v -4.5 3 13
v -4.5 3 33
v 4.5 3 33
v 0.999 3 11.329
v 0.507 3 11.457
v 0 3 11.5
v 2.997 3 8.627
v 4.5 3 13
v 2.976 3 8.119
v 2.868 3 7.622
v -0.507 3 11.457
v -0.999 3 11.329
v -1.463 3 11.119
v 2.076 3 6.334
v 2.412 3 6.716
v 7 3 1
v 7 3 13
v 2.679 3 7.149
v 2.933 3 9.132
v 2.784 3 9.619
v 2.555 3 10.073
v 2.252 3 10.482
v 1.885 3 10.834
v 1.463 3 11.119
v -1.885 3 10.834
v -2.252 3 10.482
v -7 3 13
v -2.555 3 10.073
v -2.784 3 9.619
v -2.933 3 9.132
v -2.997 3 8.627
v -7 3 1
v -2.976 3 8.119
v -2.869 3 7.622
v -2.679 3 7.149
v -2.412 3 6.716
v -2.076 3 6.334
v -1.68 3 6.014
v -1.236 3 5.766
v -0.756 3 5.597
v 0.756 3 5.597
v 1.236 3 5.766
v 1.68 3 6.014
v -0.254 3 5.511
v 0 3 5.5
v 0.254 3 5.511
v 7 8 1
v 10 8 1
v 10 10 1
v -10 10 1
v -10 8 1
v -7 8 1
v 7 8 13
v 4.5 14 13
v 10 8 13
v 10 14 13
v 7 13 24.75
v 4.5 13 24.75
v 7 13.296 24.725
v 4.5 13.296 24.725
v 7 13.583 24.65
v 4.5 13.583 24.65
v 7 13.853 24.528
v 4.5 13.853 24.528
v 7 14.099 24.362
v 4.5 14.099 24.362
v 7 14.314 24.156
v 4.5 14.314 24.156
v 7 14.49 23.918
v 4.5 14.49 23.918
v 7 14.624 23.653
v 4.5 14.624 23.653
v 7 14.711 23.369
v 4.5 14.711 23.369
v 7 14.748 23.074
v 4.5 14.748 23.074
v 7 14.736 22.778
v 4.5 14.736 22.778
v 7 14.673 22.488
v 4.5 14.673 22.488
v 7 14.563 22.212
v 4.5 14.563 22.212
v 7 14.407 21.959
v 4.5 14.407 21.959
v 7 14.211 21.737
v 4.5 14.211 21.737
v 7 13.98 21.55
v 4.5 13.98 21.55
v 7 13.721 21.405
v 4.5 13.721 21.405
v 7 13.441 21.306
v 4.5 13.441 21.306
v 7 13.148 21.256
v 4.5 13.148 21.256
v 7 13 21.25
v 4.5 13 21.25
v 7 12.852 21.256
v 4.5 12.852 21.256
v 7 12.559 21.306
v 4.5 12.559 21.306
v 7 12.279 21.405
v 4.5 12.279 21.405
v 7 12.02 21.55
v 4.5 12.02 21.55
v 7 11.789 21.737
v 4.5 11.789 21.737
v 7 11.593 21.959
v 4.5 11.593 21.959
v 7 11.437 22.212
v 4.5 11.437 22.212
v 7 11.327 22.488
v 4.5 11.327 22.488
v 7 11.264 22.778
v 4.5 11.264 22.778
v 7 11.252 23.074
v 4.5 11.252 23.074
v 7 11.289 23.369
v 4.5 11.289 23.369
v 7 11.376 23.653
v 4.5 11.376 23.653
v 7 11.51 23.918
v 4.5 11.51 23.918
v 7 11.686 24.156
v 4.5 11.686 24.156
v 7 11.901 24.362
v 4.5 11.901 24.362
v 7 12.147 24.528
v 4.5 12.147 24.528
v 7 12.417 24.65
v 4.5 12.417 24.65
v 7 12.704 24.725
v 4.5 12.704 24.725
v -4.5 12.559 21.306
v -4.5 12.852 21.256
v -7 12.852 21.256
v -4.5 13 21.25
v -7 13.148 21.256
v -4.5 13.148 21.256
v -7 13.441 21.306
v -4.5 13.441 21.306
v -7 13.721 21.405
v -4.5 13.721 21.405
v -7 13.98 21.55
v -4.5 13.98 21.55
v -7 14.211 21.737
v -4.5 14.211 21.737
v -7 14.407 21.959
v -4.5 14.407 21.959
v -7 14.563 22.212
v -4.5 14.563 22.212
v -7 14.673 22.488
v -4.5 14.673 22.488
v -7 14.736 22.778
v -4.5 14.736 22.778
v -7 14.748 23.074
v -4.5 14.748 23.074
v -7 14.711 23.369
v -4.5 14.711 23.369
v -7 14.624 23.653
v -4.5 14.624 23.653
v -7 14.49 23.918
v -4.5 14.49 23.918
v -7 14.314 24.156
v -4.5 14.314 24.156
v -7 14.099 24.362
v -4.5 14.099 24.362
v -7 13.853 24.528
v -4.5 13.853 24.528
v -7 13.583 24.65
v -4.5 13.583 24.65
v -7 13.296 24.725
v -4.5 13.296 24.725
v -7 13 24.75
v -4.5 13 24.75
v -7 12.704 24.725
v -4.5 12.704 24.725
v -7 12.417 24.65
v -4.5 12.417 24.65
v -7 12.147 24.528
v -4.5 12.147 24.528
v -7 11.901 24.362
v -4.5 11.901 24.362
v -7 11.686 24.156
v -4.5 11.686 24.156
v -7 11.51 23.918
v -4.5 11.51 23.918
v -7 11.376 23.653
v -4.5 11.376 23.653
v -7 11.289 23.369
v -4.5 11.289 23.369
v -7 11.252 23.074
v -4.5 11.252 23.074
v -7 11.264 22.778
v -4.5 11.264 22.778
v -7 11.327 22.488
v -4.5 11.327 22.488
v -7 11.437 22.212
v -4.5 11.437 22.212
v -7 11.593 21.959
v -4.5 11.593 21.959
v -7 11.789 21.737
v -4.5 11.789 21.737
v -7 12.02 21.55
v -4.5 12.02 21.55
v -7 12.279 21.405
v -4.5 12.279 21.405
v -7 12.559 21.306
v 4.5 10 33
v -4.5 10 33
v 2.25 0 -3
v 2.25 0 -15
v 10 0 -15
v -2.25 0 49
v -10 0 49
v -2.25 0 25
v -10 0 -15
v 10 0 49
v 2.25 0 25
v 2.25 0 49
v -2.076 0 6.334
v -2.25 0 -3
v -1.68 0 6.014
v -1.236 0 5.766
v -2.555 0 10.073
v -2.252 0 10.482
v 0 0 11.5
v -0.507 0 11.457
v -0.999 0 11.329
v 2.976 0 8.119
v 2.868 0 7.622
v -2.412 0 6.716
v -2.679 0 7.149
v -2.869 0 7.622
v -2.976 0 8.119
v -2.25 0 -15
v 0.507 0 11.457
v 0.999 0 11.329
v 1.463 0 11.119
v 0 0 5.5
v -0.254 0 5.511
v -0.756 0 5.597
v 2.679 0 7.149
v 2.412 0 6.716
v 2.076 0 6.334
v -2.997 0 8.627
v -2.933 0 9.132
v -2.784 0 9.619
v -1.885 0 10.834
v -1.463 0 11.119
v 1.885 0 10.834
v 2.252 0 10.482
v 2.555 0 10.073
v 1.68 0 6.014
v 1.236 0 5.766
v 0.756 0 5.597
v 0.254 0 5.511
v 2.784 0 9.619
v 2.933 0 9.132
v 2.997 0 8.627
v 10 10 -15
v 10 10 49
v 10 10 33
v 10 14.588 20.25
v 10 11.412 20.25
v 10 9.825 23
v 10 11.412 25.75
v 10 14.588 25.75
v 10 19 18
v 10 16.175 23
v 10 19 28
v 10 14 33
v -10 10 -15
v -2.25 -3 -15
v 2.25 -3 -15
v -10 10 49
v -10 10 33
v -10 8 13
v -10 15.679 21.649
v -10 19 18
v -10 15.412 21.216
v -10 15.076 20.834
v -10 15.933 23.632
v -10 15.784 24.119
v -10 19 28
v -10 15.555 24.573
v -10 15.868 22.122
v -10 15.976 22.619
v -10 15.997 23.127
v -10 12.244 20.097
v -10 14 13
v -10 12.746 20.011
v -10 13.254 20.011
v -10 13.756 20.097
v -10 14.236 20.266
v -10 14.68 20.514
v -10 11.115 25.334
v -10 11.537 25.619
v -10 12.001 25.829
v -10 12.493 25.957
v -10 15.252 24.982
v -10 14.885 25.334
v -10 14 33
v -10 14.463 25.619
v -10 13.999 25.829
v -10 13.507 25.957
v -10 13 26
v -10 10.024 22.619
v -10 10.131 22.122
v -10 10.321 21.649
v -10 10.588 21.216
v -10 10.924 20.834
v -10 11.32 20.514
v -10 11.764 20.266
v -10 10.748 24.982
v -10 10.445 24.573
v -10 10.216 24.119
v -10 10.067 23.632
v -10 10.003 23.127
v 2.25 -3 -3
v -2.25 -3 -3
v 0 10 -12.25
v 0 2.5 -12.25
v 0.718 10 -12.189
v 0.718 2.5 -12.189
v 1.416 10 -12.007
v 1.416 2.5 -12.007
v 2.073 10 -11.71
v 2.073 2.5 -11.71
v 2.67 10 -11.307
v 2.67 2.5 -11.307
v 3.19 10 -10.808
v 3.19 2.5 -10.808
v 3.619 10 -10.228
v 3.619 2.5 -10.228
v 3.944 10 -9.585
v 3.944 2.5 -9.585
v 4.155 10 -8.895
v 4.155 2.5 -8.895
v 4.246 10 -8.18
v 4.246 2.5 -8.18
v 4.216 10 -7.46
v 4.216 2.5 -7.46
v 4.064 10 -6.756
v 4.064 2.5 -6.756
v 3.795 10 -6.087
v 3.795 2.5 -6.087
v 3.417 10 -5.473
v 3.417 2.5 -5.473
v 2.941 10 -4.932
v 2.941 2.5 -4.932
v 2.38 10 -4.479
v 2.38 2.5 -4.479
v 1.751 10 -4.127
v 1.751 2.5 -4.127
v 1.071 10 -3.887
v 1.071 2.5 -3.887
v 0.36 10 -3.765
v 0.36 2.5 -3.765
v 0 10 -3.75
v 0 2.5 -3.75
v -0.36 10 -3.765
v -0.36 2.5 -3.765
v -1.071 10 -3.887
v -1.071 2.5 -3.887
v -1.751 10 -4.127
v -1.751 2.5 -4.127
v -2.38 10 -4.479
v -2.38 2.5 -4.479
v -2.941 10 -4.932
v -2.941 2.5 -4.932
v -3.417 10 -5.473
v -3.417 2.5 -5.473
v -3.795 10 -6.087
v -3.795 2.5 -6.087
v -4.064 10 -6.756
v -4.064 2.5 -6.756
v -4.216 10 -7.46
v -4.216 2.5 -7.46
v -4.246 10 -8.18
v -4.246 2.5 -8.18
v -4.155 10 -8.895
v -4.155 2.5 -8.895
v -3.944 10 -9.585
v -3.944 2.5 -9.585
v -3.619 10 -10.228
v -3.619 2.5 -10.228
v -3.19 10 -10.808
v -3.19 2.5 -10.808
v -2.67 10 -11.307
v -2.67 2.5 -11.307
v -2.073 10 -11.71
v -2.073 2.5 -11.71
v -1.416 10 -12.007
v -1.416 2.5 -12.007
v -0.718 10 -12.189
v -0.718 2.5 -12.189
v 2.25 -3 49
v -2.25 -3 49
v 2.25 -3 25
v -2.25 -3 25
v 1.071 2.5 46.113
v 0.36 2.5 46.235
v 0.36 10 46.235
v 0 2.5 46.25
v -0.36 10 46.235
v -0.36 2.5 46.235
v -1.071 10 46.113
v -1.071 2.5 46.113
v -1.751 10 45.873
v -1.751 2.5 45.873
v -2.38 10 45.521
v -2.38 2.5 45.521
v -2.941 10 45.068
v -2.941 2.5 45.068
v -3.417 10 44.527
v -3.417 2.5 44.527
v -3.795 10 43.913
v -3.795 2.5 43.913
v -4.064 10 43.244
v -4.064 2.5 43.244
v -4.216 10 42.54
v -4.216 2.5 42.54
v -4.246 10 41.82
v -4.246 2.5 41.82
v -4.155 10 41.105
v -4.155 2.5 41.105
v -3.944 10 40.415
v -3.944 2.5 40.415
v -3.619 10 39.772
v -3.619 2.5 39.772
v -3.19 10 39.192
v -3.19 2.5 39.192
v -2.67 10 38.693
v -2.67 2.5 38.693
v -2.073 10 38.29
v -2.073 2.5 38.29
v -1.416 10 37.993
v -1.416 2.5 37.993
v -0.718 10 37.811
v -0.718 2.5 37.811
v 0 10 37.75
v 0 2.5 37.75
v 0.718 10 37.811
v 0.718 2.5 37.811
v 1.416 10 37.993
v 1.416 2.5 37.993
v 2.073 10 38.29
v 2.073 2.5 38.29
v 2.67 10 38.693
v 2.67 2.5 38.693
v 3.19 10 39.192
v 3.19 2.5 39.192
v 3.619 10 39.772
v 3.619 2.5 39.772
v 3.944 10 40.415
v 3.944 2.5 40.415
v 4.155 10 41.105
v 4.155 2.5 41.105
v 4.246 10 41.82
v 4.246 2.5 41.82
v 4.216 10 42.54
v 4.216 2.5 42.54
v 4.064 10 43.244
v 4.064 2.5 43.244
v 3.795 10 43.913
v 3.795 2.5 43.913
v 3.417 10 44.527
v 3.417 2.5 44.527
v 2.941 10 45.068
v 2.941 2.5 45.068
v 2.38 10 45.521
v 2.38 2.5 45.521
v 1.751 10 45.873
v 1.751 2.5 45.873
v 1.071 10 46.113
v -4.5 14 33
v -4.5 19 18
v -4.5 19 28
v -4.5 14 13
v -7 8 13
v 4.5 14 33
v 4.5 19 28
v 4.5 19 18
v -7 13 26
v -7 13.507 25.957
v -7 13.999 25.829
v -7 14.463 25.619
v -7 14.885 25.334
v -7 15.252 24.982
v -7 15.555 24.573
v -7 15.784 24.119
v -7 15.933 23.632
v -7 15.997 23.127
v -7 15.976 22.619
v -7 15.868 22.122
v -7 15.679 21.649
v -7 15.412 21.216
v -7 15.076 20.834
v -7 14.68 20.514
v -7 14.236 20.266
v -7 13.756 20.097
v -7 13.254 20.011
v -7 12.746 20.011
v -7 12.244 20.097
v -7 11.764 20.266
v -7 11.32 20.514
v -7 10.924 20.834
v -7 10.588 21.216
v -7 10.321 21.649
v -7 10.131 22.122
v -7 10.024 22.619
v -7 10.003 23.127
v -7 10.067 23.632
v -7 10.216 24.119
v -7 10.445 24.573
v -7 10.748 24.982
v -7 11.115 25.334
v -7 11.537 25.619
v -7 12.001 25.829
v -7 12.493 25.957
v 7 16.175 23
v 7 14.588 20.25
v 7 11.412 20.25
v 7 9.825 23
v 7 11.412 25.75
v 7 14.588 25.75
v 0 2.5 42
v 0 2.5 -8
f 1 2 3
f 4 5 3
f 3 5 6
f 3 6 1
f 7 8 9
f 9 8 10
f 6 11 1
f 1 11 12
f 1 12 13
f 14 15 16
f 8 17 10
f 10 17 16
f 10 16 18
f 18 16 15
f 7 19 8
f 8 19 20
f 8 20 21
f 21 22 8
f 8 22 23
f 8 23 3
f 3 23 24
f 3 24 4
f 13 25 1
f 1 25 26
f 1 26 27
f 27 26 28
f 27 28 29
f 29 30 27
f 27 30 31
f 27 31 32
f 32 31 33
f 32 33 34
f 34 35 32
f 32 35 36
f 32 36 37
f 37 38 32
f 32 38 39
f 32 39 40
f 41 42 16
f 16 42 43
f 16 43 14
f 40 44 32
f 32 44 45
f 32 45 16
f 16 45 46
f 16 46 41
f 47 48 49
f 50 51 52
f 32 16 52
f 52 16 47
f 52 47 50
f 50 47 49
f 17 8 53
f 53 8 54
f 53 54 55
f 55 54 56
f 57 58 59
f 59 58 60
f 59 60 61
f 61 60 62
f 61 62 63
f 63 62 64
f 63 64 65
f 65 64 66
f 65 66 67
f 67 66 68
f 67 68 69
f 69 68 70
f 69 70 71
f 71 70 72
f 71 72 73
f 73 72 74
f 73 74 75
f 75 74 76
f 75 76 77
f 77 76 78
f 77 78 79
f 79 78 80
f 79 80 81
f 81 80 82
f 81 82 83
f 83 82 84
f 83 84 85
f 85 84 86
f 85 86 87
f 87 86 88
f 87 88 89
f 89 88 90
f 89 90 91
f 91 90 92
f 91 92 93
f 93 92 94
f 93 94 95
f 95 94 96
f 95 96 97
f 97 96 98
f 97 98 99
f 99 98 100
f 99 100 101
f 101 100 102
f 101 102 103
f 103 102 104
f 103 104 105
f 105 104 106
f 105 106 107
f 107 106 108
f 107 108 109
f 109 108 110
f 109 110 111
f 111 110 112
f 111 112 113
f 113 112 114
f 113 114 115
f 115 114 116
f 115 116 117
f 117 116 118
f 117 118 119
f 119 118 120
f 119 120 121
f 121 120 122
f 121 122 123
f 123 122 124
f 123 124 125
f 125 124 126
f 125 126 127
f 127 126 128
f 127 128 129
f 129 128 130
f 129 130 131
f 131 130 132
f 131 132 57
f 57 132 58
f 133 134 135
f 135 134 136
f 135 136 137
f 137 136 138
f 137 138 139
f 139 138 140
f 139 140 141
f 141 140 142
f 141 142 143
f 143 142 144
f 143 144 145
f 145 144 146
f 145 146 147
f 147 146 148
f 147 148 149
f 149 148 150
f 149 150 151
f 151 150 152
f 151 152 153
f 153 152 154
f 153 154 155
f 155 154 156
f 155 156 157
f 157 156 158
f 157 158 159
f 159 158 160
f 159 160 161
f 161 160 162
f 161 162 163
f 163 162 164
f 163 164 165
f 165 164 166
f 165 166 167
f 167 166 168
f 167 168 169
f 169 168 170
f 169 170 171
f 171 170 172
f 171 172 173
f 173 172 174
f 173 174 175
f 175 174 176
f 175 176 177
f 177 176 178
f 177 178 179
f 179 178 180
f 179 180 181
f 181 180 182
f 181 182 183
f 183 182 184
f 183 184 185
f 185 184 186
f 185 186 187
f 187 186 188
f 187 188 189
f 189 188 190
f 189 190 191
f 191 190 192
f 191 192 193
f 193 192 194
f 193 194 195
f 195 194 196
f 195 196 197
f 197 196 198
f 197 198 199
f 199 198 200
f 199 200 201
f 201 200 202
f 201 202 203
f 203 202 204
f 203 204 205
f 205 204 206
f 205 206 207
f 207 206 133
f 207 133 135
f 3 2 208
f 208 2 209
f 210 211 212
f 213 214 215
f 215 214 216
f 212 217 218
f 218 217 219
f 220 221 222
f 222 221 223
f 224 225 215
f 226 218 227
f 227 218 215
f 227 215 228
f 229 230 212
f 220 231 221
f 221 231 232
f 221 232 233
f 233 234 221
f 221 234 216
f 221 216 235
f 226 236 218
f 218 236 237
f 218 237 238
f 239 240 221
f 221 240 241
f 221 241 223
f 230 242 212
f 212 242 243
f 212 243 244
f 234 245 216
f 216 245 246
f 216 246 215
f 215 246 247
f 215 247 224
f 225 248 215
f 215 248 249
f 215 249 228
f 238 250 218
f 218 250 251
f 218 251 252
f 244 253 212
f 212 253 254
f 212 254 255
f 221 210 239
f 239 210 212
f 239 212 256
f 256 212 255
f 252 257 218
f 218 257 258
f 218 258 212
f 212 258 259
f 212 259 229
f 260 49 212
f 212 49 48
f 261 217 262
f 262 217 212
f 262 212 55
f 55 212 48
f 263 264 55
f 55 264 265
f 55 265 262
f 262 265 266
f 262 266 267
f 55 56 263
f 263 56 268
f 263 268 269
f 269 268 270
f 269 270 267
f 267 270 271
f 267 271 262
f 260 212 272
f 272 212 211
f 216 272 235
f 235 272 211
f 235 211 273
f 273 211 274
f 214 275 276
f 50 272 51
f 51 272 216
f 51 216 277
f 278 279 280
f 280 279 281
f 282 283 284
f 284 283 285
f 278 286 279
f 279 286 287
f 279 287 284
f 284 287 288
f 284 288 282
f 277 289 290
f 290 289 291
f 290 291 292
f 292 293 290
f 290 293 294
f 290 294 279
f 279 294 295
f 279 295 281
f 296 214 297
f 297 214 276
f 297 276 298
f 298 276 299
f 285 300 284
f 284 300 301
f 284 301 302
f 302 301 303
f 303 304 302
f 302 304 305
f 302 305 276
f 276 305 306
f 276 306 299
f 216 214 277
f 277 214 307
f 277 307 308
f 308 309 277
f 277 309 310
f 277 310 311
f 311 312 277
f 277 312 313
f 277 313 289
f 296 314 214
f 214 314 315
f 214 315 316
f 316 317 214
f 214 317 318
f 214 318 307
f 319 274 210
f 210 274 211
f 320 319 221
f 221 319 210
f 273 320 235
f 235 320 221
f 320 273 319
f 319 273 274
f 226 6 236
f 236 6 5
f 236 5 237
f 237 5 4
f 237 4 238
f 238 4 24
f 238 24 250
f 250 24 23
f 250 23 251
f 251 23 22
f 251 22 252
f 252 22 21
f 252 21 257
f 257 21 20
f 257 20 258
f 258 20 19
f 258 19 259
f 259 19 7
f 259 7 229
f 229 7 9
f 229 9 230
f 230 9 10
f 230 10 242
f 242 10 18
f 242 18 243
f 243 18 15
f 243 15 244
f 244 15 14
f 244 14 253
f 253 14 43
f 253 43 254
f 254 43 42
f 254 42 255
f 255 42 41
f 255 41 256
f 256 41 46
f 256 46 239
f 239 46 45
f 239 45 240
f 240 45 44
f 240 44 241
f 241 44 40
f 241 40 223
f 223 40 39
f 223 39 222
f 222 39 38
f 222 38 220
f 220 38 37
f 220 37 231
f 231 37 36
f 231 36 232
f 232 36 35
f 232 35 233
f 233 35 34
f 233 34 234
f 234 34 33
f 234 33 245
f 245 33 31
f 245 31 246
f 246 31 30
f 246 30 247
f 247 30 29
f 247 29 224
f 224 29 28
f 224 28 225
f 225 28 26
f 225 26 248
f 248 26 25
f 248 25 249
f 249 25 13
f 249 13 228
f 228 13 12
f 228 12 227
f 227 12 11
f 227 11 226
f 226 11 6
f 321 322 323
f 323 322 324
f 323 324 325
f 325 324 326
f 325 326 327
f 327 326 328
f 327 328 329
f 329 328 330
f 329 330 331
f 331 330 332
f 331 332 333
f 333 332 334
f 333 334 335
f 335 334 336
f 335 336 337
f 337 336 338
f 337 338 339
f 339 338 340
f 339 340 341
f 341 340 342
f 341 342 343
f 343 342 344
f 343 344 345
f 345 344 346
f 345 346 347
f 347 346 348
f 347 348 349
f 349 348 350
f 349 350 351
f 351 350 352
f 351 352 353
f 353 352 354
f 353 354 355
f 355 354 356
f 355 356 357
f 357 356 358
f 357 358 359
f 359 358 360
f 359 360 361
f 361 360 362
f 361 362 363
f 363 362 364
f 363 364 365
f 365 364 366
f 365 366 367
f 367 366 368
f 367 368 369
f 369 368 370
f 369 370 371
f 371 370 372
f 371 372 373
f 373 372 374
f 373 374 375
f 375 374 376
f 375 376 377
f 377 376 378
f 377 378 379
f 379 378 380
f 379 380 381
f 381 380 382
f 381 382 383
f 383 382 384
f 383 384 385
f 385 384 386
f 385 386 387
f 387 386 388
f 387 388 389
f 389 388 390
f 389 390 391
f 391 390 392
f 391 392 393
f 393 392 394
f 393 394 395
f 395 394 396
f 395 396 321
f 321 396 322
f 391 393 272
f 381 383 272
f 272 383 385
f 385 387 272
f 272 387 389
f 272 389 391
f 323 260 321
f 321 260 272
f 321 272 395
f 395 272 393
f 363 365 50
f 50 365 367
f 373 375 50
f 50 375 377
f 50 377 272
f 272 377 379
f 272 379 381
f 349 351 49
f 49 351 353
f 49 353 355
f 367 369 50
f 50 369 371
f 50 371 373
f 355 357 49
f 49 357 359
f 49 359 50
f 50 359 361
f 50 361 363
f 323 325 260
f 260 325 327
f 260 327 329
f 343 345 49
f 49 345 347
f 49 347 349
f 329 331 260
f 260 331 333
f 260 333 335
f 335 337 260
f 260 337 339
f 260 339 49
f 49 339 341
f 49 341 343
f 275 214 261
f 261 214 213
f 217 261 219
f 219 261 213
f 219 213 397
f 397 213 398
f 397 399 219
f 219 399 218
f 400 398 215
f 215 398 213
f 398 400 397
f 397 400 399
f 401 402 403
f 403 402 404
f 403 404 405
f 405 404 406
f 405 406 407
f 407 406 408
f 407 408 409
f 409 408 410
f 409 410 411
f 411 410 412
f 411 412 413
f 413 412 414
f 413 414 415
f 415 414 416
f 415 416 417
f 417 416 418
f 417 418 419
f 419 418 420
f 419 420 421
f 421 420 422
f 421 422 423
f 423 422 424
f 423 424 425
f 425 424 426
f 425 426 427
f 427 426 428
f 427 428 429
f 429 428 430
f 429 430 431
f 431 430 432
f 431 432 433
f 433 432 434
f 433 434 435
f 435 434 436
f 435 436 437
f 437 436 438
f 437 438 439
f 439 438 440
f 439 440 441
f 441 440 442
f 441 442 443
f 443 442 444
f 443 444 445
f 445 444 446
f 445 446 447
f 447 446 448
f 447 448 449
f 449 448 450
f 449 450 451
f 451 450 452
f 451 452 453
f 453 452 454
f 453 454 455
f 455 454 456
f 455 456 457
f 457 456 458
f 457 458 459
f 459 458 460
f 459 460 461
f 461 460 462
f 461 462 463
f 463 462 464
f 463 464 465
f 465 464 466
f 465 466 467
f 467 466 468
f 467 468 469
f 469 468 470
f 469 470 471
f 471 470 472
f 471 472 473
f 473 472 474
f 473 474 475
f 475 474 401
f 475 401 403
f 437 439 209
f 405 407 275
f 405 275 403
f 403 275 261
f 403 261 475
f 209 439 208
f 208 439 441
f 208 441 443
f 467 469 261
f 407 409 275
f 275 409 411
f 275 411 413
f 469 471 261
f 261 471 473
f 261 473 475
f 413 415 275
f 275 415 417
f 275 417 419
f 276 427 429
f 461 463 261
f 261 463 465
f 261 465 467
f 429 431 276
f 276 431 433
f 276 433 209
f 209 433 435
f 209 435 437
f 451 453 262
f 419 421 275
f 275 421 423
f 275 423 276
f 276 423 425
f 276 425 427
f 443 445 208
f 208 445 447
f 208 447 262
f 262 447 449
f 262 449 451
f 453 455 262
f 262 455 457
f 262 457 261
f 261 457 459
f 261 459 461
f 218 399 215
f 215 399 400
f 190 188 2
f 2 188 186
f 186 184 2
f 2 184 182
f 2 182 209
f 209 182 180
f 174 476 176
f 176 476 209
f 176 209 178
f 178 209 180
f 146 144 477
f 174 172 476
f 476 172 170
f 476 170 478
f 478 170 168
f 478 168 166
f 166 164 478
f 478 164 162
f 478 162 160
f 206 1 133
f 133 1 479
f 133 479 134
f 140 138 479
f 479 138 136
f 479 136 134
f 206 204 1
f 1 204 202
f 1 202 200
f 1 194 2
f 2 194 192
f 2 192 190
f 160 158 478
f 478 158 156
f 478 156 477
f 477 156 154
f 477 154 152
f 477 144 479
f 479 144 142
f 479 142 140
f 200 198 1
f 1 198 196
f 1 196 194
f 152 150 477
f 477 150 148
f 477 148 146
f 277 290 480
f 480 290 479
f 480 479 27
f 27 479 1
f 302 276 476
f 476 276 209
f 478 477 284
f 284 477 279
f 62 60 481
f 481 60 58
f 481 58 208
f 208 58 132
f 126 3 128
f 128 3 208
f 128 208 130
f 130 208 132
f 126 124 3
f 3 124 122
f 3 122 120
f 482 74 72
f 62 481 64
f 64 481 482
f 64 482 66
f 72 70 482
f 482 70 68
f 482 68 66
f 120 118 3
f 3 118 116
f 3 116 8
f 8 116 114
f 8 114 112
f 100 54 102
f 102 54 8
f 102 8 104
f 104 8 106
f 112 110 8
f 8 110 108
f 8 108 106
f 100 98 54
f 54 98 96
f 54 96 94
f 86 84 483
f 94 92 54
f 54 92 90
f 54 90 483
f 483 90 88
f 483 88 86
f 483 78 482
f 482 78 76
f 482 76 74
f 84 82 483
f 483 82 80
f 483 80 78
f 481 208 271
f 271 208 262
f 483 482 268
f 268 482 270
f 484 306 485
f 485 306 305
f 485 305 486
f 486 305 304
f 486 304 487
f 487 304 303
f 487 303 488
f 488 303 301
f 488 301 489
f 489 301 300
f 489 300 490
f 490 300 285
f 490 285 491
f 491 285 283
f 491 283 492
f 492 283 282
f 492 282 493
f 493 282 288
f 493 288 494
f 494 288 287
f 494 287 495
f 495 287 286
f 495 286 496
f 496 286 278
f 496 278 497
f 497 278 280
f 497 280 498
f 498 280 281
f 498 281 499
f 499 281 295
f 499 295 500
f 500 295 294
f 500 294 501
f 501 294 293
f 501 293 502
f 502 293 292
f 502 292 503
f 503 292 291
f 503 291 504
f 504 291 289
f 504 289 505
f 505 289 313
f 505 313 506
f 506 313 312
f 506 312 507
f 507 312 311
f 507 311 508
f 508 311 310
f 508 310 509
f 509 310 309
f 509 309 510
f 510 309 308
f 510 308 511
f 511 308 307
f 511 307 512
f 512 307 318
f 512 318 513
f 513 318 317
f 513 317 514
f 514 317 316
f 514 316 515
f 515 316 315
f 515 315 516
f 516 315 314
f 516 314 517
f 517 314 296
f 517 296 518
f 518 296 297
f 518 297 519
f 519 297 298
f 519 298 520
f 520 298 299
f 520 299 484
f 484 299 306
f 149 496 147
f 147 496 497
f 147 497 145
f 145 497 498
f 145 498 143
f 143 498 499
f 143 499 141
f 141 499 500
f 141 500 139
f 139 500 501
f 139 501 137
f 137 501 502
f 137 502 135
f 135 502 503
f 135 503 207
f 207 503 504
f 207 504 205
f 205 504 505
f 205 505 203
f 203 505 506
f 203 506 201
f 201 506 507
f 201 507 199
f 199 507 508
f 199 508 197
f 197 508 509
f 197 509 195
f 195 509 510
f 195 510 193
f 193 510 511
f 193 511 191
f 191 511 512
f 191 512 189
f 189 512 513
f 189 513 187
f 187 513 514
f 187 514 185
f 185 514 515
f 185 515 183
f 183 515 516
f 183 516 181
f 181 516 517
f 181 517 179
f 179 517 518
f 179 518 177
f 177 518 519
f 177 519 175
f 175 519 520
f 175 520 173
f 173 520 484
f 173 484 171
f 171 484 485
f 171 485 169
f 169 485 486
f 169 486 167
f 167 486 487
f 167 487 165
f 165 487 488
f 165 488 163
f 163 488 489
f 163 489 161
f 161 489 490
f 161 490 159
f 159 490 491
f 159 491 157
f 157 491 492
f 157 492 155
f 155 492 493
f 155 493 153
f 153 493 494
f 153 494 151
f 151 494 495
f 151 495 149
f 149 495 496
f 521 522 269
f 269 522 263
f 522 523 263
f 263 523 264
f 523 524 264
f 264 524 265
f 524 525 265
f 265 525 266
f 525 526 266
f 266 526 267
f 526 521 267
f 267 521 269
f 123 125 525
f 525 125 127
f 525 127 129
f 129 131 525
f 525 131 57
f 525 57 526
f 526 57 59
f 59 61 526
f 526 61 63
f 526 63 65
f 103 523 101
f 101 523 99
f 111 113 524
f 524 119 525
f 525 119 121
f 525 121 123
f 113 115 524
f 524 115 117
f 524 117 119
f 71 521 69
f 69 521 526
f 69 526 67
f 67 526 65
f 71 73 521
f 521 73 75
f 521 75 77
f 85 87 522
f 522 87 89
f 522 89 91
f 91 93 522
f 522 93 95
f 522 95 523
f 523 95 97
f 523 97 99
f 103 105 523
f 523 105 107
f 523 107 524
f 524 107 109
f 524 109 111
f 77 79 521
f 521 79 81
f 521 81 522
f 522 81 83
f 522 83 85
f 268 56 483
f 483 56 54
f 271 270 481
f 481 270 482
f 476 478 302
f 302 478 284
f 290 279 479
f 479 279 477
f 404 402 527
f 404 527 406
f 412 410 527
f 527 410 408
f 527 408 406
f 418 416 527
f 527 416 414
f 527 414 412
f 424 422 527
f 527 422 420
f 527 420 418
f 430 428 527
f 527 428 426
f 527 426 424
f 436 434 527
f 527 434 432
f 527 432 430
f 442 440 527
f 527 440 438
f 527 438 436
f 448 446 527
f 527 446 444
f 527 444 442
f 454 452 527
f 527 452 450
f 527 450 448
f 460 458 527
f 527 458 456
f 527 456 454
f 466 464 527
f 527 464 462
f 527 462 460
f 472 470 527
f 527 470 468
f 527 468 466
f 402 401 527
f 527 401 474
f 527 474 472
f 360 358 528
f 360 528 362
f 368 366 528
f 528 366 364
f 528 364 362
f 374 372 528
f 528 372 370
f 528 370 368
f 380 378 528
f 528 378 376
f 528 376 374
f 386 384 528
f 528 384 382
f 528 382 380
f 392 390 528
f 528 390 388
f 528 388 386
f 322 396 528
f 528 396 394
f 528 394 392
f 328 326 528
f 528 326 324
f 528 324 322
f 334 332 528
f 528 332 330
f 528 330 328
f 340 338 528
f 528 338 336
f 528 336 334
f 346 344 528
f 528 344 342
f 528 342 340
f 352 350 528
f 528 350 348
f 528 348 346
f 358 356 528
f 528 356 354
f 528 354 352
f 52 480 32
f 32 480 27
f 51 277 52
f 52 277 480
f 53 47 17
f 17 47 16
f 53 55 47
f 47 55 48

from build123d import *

# Parameters (mm, degrees)
SKETCH1_W               = 20
SKETCH1_H               = 30
BOSS_EXTRUDE1_DEPTH     = 3
SKETCH2_W               = 4.5
SKETCH2_H               = 12
BOSS_EXTRUDE2_DEPTH     = 3
SKETCH3_R               = 7
SKETCH3_R_2             = 4.25
BOSS_EXTRUDE3_DEPTH     = 7
SKETCH4_R               = 4.25
BOSS_EXTRUDE4_DEPTH     = 1
CUT_EXTRUDE1_DEPTH      = 20.339079606
CUT_EXTRUDE1_DEPTH_BACK = 20.339079606
SKETCH5_R               = 3
SKETCH6_R               = 7
SKETCH6_R_2             = 4.25
BOSS_EXTRUDE6_DEPTH     = 7
SKETCH7_W               = 20
SKETCH7_H               = 3
BOSS_EXTRUDE7_DEPTH     = 19
SKETCH8_W               = 4.5
SKETCH8_H               = 3
BOSS_EXTRUDE8_DEPTH     = 12
SKETCH10_W              = 5.5
SKETCH10_H              = 20
BOSS_EXTRUDE9_DEPTH     = 16
CUT_EXTRUDE2_DEPTH      = 57.231663678
CUT_EXTRUDE2_DEPTH_BACK = 57.231663678
SKETCH11_R              = 1.75
SKETCH12_R              = 3
SKETCH12_R_2            = 1.75
CUT_EXTRUDE3_DEPTH      = 3
CUT_EXTRUDE4_START      = -3
SKETCH13_R              = 1.75
CUT_EXTRUDE4_DEPTH      = 3
CHAMFER2_SIZE           = 5
CUT_EXTRUDE5_START      = -1.5
SKETCH14_R              = 4.25
CUT_EXTRUDE5_DEPTH      = 1.5
SKETCH15_W              = 3
SKETCH15_H              = 12
BOSS_EXTRUDE10_DEPTH    = 5


with BuildPart() as part:
    # Sketch1 → Boss-Extrude1 (new body)
    with BuildSketch(Plane(origin=(0, 0, 0), x_dir=(1, 0, 0), z_dir=(0, 1, 0))):
        Rectangle(SKETCH1_W, SKETCH1_H)
    boss_extrude1 = extrude(amount=BOSS_EXTRUDE1_DEPTH)

    # Sketch2 → Boss-Extrude2 (add)
    with BuildSketch(Plane.XZ):
        with Locations((0, -9)):
            Rectangle(SKETCH2_W, SKETCH2_H)
    boss_extrude2 = extrude(amount=BOSS_EXTRUDE2_DEPTH)

    # Sketch3 → Boss-Extrude3 (add)
    with BuildSketch(Plane(origin=(0, 3, 0), x_dir=(1, 0, 0), z_dir=(0, 1, 0))):
        with Locations(Location((0, 8, 0), (0, 0, 90))):
            Circle(SKETCH3_R)
        with Locations(Location((0, 8, 0), (0, 0, 270))):
            Circle(SKETCH3_R_2, mode=Mode.SUBTRACT)
    boss_extrude3 = extrude(amount=BOSS_EXTRUDE3_DEPTH)

    # Sketch4 → Boss-Extrude4 (add)
    with BuildSketch(Plane(origin=(0, 3, 0), x_dir=(1, 0, 0), z_dir=(0, 1, 0))):
        with Locations(Location((0, 8, 0), (0, 0, 270))):
            Circle(SKETCH4_R)
    boss_extrude4 = extrude(amount=BOSS_EXTRUDE4_DEPTH)

    # Sketch5 → Cut-Extrude1 (cut, two sides: drawn at the far end of the back side and taken through both)
    with BuildSketch(Plane(origin=(0, 3, 0), x_dir=(1, 0, 0), z_dir=(0, 1, 0)).offset(-CUT_EXTRUDE1_DEPTH_BACK)):
        with Locations(Location((0, -8.5, 0), (0, 0, 90))):
            Circle(SKETCH5_R)
    extrude(amount=CUT_EXTRUDE1_DEPTH + CUT_EXTRUDE1_DEPTH_BACK, mode=Mode.SUBTRACT)

    # Sketch6 → Boss-Extrude6 (add)
    # profile 1 of 2: a face of its own
    with BuildSketch(Plane(origin=(0, 3, 0), x_dir=(1, 0, 0), z_dir=(0, 1, 0))):
        Polygon((0, 15), (-10, 15), (-10, -1), (10, -1), (10, 15), align=None)
        with BuildLine():
            ThreePointArc((7, 8), (-4.949747468, 3.050252532), (0, 15))
            ThreePointArc((0, 15), (4.949747468, 12.949747468), (7, 8))
        make_face(mode=Mode.SUBTRACT)
    # profile 2 of 2: a face of its own
    with BuildSketch(Plane(origin=(0, 3, 0), x_dir=(1, 0, 0), z_dir=(0, 1, 0))):
        with Locations((0, 8)):
            Circle(SKETCH6_R)
        with Locations(Location((0, 8, 0), (0, 0, 270))):
            Circle(SKETCH6_R_2, mode=Mode.SUBTRACT)
    boss_extrude6 = extrude(amount=BOSS_EXTRUDE6_DEPTH)

    # Sketch7 → Boss-Extrude7 (add)
    with BuildSketch(Plane.XY.offset(15)):
        with Locations((0, 1.5)):
            Rectangle(SKETCH7_W, SKETCH7_H)
    extrude(amount=BOSS_EXTRUDE7_DEPTH)

    # Mirror3: Boss-Extrude1, Boss-Extrude2, Boss-Extrude3, Boss-Extrude4, Boss-Extrude6 across plane
    add(boss_extrude1.mirror(Plane.XY.offset(17)))
    add(boss_extrude2.mirror(Plane.XY.offset(17)))
    add(boss_extrude3.mirror(Plane.XY.offset(17)))
    add(boss_extrude4.mirror(Plane.XY.offset(17)))
    add(boss_extrude6.mirror(Plane.XY.offset(17)))

    # Sketch8 → Boss-Extrude8 (add)
    with BuildSketch(Plane(origin=(0, 0, 37), x_dir=(-1, 0, 0), z_dir=(0, 0, -1))):
        with Locations((0, -1.5)):
            Rectangle(SKETCH8_W, SKETCH8_H)
    extrude(amount=BOSS_EXTRUDE8_DEPTH)

    # Sketch10 → Boss-Extrude9 (add)
    with BuildSketch(Plane(origin=(0, 3, 0), x_dir=(1, 0, 0), z_dir=(0, 1, 0))):
        with Locations((-7.25, -23)):
            Rectangle(SKETCH10_W, SKETCH10_H)
        with Locations((7.25, -23)):
            Rectangle(SKETCH10_W, SKETCH10_H)
    extrude(amount=BOSS_EXTRUDE9_DEPTH)

    # Sketch11 → Cut-Extrude2 (cut, two sides: drawn at the far end of the back side and taken through both)
    with BuildSketch(Plane.ZY.offset(10).offset(-CUT_EXTRUDE2_DEPTH_BACK)):
        with Locations((23, 13)):
            Circle(SKETCH11_R)
    extrude(amount=CUT_EXTRUDE2_DEPTH + CUT_EXTRUDE2_DEPTH_BACK, mode=Mode.SUBTRACT)

    # Sketch12 → Cut-Extrude3 (cut)
    with BuildSketch(Plane.ZY.offset(10)):
        with Locations((23, 13)):
            Circle(SKETCH12_R)
        with Locations((23, 13)):
            Circle(SKETCH12_R_2, mode=Mode.SUBTRACT)
    extrude(amount=-CUT_EXTRUDE3_DEPTH, mode=Mode.SUBTRACT)

    # Sketch13 → Cut-Extrude4 (cut)
    with BuildSketch(Plane(origin=(10, 0, 0), x_dir=(0, 0, -1), z_dir=(1, 0, 0)).offset(CUT_EXTRUDE4_START)):
        Polygon((-23, 16.175426481), (-25.75, 14.58771324), (-25.75, 11.41228676), (-23, 9.824573519), (-20.25, 11.41228676), (-20.25, 14.58771324), align=None)
        with Locations((-23, 13)):
            Circle(SKETCH13_R, mode=Mode.SUBTRACT)
    extrude(amount=CUT_EXTRUDE4_DEPTH, mode=Mode.SUBTRACT)

    # Chamfer2
    chamfer2_edges = [part.edges().sort_by_distance(p)[0] for p in [
        (-7.25, 19, 13),
        (-7.25, 19, 33),
        (7.25, 19, 13),
        (7.25, 19, 33),
    ]]
    chamfer(chamfer2_edges, length=CHAMFER2_SIZE)

    # Sketch14 → Cut-Extrude5 (cut)
    with BuildSketch(Plane(origin=(0, 4, 0), x_dir=(1, 0, 0), z_dir=(0, 1, 0)).offset(CUT_EXTRUDE5_START)):
        with Locations(Location((0, -42, 0), (0, 0, 90))):
            Circle(SKETCH14_R)
        with Locations(Location((0, 8, 0), (0, 0, 270))):
            Circle(SKETCH14_R)
    extrude(amount=CUT_EXTRUDE5_DEPTH, mode=Mode.SUBTRACT)

    # Sketch15 → Boss-Extrude10 (add)
    with BuildSketch(Plane(origin=(0, 3, 0), x_dir=(1, 0, 0), z_dir=(0, 1, 0))):
        with Locations((-8.5, -7)):
            Rectangle(SKETCH15_W, SKETCH15_H)
        with Locations((8.5, -7)):
            Rectangle(SKETCH15_W, SKETCH15_H)
    extrude(amount=BOSS_EXTRUDE10_DEPTH)


solid = part.part
